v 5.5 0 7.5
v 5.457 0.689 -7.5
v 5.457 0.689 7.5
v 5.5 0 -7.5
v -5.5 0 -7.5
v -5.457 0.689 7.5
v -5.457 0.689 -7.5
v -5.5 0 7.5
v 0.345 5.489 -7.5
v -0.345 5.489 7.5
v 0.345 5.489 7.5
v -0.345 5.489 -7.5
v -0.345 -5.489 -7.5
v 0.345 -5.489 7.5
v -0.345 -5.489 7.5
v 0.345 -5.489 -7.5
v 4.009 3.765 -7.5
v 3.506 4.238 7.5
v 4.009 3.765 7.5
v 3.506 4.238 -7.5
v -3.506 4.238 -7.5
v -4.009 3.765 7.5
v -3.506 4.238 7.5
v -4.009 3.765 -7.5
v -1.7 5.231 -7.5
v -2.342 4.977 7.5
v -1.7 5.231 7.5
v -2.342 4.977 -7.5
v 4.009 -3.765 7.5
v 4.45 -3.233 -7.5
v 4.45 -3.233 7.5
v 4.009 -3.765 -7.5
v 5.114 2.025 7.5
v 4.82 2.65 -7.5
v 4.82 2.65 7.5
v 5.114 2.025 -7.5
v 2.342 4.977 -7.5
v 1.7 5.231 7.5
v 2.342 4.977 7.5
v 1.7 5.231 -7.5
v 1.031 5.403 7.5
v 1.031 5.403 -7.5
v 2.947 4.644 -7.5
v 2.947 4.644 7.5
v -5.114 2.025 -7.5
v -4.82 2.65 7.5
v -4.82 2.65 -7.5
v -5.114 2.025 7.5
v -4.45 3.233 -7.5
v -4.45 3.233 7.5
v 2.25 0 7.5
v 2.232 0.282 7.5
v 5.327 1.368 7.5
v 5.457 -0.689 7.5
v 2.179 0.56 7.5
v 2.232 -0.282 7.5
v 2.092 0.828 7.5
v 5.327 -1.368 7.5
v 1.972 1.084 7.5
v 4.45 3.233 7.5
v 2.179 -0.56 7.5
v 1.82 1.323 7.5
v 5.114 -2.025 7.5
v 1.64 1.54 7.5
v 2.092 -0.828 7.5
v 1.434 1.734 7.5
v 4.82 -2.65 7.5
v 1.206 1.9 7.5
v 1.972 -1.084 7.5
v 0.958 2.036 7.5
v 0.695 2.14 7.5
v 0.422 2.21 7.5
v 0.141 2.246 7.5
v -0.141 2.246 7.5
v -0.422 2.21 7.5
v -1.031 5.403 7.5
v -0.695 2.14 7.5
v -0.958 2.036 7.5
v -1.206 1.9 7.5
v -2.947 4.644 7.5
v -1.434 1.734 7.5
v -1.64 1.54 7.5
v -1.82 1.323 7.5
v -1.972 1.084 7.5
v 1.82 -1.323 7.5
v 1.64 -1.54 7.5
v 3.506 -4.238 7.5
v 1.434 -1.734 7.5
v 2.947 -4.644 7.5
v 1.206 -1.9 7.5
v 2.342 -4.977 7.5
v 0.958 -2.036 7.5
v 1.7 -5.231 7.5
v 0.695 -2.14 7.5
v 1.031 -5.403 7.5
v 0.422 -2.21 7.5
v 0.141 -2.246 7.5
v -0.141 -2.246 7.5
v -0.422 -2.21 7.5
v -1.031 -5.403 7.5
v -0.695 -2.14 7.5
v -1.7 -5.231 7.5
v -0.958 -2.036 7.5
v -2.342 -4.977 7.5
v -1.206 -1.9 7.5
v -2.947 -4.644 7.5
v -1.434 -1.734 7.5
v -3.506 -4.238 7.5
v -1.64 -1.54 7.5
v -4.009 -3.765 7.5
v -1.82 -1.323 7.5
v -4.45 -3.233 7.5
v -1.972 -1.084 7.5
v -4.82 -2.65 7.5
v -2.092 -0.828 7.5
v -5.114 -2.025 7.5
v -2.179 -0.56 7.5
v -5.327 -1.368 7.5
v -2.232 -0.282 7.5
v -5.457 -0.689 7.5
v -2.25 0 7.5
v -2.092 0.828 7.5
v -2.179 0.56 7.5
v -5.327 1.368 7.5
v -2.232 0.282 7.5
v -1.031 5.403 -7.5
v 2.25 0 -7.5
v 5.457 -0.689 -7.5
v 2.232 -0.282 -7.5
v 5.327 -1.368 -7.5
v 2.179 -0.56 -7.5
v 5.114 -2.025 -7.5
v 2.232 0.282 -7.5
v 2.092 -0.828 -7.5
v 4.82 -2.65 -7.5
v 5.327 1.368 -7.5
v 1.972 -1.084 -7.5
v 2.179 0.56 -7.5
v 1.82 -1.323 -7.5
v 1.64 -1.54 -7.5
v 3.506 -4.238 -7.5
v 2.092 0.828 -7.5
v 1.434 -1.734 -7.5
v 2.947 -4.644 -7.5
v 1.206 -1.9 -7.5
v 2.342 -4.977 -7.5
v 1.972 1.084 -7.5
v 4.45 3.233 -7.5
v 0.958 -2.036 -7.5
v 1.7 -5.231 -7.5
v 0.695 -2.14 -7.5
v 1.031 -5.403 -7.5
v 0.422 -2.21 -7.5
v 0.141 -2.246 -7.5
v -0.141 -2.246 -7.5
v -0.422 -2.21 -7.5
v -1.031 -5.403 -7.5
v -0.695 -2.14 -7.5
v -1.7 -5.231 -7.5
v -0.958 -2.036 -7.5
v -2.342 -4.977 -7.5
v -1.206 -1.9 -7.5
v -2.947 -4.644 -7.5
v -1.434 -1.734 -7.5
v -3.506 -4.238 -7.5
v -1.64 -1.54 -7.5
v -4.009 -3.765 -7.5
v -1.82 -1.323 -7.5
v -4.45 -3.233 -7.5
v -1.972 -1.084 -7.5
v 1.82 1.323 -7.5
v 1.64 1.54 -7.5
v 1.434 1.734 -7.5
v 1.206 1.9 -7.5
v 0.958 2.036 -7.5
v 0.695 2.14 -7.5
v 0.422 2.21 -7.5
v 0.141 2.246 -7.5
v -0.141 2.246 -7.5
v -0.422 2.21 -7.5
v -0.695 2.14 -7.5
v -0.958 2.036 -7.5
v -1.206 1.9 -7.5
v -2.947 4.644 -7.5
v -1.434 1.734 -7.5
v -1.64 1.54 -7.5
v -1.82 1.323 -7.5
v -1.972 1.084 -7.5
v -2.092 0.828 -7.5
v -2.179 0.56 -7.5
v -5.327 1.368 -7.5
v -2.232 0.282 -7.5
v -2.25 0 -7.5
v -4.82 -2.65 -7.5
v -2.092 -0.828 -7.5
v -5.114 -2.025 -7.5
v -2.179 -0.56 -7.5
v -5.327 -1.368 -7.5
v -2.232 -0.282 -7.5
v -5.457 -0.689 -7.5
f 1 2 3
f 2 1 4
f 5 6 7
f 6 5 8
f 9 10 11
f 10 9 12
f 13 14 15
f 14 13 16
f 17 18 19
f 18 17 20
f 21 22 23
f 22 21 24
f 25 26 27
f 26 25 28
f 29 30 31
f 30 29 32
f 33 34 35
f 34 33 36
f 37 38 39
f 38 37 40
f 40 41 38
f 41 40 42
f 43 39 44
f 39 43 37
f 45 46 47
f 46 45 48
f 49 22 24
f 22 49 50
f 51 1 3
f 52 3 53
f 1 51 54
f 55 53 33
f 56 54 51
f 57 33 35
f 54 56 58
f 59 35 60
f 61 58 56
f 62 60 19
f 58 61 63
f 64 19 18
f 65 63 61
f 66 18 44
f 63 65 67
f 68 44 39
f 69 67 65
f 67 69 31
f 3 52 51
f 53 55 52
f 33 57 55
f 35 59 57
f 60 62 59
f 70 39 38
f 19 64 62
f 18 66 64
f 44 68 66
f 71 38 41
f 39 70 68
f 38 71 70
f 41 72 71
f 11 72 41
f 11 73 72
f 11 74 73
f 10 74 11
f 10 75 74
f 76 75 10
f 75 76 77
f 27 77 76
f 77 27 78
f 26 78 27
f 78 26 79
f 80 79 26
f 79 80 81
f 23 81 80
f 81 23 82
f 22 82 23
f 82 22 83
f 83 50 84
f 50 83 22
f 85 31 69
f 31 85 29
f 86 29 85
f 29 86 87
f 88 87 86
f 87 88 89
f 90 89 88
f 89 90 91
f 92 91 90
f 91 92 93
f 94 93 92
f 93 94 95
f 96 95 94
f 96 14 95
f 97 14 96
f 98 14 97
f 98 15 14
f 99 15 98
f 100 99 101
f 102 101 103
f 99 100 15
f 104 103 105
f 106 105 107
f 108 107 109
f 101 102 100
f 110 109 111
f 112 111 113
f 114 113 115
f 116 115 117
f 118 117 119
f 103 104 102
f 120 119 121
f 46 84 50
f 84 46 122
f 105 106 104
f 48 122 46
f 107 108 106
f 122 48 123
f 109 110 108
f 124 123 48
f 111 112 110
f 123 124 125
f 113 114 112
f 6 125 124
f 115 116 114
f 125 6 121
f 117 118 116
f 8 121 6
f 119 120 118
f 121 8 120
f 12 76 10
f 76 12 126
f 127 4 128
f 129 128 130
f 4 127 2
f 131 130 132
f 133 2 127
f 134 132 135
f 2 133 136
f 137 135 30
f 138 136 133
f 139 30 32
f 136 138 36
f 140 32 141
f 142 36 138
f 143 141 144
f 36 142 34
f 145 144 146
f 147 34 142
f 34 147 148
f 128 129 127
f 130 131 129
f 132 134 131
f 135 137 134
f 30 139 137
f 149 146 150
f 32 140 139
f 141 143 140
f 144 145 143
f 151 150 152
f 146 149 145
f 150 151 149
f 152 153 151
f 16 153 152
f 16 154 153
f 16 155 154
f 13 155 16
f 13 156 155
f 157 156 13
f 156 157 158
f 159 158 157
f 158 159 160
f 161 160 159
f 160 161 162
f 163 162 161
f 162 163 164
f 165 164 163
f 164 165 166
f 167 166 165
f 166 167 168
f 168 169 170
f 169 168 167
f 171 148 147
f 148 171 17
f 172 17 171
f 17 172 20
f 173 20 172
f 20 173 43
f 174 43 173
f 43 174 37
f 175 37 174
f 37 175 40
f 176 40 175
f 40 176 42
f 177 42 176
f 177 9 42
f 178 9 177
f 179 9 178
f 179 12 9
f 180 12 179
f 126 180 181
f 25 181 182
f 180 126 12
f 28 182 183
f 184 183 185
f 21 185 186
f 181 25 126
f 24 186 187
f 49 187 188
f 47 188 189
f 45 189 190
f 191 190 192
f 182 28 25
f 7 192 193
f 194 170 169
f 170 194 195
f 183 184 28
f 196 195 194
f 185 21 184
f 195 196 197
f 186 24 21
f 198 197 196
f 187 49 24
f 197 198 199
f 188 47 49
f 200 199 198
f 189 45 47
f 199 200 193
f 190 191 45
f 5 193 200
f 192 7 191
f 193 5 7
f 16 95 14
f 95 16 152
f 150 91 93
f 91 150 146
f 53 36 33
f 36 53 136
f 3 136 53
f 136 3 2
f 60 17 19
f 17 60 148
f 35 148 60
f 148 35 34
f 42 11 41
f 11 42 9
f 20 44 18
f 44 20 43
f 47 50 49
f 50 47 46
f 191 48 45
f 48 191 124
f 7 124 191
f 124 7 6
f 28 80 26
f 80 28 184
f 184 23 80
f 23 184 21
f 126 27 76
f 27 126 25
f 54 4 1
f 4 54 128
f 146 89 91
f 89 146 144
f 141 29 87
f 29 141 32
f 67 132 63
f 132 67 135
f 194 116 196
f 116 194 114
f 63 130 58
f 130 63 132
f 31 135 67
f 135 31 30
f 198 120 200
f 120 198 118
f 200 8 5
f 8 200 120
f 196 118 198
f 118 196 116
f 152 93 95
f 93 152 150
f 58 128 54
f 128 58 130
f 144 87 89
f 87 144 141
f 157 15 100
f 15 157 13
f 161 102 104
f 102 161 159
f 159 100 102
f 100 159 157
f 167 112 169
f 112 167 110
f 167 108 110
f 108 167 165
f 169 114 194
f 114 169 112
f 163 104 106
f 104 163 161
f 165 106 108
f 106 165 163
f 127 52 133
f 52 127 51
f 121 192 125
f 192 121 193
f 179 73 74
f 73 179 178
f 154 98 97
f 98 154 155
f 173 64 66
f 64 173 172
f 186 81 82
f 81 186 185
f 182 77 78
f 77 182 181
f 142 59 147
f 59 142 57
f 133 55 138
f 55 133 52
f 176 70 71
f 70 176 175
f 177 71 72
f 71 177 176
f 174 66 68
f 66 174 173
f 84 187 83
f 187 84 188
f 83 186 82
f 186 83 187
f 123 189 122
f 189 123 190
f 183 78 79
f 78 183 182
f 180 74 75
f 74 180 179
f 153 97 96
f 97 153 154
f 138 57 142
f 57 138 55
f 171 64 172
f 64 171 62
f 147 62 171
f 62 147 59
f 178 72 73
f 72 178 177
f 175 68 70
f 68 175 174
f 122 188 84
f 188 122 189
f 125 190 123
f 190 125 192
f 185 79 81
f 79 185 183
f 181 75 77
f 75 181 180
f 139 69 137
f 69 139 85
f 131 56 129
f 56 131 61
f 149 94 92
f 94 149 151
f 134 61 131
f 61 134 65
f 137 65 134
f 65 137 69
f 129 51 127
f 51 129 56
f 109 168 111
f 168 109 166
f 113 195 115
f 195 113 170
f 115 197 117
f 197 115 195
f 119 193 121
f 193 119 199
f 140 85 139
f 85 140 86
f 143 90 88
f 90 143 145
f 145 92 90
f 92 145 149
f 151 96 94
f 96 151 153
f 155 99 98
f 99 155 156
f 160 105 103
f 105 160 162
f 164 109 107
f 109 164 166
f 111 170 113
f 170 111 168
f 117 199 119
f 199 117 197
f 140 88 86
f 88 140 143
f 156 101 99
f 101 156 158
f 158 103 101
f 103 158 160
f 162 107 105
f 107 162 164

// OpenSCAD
$fn = 50;


difference() {
	union() {
		translate(v = [0, 0, -7.5000000000]) {
			cylinder(h = 15, r = 5.5000000000);
		}
	}
	union() {
		translate(v = [0, 0, -100.0000000000]) {
			cylinder(h = 200, r = 2.2500000000);
		}
	}
}
